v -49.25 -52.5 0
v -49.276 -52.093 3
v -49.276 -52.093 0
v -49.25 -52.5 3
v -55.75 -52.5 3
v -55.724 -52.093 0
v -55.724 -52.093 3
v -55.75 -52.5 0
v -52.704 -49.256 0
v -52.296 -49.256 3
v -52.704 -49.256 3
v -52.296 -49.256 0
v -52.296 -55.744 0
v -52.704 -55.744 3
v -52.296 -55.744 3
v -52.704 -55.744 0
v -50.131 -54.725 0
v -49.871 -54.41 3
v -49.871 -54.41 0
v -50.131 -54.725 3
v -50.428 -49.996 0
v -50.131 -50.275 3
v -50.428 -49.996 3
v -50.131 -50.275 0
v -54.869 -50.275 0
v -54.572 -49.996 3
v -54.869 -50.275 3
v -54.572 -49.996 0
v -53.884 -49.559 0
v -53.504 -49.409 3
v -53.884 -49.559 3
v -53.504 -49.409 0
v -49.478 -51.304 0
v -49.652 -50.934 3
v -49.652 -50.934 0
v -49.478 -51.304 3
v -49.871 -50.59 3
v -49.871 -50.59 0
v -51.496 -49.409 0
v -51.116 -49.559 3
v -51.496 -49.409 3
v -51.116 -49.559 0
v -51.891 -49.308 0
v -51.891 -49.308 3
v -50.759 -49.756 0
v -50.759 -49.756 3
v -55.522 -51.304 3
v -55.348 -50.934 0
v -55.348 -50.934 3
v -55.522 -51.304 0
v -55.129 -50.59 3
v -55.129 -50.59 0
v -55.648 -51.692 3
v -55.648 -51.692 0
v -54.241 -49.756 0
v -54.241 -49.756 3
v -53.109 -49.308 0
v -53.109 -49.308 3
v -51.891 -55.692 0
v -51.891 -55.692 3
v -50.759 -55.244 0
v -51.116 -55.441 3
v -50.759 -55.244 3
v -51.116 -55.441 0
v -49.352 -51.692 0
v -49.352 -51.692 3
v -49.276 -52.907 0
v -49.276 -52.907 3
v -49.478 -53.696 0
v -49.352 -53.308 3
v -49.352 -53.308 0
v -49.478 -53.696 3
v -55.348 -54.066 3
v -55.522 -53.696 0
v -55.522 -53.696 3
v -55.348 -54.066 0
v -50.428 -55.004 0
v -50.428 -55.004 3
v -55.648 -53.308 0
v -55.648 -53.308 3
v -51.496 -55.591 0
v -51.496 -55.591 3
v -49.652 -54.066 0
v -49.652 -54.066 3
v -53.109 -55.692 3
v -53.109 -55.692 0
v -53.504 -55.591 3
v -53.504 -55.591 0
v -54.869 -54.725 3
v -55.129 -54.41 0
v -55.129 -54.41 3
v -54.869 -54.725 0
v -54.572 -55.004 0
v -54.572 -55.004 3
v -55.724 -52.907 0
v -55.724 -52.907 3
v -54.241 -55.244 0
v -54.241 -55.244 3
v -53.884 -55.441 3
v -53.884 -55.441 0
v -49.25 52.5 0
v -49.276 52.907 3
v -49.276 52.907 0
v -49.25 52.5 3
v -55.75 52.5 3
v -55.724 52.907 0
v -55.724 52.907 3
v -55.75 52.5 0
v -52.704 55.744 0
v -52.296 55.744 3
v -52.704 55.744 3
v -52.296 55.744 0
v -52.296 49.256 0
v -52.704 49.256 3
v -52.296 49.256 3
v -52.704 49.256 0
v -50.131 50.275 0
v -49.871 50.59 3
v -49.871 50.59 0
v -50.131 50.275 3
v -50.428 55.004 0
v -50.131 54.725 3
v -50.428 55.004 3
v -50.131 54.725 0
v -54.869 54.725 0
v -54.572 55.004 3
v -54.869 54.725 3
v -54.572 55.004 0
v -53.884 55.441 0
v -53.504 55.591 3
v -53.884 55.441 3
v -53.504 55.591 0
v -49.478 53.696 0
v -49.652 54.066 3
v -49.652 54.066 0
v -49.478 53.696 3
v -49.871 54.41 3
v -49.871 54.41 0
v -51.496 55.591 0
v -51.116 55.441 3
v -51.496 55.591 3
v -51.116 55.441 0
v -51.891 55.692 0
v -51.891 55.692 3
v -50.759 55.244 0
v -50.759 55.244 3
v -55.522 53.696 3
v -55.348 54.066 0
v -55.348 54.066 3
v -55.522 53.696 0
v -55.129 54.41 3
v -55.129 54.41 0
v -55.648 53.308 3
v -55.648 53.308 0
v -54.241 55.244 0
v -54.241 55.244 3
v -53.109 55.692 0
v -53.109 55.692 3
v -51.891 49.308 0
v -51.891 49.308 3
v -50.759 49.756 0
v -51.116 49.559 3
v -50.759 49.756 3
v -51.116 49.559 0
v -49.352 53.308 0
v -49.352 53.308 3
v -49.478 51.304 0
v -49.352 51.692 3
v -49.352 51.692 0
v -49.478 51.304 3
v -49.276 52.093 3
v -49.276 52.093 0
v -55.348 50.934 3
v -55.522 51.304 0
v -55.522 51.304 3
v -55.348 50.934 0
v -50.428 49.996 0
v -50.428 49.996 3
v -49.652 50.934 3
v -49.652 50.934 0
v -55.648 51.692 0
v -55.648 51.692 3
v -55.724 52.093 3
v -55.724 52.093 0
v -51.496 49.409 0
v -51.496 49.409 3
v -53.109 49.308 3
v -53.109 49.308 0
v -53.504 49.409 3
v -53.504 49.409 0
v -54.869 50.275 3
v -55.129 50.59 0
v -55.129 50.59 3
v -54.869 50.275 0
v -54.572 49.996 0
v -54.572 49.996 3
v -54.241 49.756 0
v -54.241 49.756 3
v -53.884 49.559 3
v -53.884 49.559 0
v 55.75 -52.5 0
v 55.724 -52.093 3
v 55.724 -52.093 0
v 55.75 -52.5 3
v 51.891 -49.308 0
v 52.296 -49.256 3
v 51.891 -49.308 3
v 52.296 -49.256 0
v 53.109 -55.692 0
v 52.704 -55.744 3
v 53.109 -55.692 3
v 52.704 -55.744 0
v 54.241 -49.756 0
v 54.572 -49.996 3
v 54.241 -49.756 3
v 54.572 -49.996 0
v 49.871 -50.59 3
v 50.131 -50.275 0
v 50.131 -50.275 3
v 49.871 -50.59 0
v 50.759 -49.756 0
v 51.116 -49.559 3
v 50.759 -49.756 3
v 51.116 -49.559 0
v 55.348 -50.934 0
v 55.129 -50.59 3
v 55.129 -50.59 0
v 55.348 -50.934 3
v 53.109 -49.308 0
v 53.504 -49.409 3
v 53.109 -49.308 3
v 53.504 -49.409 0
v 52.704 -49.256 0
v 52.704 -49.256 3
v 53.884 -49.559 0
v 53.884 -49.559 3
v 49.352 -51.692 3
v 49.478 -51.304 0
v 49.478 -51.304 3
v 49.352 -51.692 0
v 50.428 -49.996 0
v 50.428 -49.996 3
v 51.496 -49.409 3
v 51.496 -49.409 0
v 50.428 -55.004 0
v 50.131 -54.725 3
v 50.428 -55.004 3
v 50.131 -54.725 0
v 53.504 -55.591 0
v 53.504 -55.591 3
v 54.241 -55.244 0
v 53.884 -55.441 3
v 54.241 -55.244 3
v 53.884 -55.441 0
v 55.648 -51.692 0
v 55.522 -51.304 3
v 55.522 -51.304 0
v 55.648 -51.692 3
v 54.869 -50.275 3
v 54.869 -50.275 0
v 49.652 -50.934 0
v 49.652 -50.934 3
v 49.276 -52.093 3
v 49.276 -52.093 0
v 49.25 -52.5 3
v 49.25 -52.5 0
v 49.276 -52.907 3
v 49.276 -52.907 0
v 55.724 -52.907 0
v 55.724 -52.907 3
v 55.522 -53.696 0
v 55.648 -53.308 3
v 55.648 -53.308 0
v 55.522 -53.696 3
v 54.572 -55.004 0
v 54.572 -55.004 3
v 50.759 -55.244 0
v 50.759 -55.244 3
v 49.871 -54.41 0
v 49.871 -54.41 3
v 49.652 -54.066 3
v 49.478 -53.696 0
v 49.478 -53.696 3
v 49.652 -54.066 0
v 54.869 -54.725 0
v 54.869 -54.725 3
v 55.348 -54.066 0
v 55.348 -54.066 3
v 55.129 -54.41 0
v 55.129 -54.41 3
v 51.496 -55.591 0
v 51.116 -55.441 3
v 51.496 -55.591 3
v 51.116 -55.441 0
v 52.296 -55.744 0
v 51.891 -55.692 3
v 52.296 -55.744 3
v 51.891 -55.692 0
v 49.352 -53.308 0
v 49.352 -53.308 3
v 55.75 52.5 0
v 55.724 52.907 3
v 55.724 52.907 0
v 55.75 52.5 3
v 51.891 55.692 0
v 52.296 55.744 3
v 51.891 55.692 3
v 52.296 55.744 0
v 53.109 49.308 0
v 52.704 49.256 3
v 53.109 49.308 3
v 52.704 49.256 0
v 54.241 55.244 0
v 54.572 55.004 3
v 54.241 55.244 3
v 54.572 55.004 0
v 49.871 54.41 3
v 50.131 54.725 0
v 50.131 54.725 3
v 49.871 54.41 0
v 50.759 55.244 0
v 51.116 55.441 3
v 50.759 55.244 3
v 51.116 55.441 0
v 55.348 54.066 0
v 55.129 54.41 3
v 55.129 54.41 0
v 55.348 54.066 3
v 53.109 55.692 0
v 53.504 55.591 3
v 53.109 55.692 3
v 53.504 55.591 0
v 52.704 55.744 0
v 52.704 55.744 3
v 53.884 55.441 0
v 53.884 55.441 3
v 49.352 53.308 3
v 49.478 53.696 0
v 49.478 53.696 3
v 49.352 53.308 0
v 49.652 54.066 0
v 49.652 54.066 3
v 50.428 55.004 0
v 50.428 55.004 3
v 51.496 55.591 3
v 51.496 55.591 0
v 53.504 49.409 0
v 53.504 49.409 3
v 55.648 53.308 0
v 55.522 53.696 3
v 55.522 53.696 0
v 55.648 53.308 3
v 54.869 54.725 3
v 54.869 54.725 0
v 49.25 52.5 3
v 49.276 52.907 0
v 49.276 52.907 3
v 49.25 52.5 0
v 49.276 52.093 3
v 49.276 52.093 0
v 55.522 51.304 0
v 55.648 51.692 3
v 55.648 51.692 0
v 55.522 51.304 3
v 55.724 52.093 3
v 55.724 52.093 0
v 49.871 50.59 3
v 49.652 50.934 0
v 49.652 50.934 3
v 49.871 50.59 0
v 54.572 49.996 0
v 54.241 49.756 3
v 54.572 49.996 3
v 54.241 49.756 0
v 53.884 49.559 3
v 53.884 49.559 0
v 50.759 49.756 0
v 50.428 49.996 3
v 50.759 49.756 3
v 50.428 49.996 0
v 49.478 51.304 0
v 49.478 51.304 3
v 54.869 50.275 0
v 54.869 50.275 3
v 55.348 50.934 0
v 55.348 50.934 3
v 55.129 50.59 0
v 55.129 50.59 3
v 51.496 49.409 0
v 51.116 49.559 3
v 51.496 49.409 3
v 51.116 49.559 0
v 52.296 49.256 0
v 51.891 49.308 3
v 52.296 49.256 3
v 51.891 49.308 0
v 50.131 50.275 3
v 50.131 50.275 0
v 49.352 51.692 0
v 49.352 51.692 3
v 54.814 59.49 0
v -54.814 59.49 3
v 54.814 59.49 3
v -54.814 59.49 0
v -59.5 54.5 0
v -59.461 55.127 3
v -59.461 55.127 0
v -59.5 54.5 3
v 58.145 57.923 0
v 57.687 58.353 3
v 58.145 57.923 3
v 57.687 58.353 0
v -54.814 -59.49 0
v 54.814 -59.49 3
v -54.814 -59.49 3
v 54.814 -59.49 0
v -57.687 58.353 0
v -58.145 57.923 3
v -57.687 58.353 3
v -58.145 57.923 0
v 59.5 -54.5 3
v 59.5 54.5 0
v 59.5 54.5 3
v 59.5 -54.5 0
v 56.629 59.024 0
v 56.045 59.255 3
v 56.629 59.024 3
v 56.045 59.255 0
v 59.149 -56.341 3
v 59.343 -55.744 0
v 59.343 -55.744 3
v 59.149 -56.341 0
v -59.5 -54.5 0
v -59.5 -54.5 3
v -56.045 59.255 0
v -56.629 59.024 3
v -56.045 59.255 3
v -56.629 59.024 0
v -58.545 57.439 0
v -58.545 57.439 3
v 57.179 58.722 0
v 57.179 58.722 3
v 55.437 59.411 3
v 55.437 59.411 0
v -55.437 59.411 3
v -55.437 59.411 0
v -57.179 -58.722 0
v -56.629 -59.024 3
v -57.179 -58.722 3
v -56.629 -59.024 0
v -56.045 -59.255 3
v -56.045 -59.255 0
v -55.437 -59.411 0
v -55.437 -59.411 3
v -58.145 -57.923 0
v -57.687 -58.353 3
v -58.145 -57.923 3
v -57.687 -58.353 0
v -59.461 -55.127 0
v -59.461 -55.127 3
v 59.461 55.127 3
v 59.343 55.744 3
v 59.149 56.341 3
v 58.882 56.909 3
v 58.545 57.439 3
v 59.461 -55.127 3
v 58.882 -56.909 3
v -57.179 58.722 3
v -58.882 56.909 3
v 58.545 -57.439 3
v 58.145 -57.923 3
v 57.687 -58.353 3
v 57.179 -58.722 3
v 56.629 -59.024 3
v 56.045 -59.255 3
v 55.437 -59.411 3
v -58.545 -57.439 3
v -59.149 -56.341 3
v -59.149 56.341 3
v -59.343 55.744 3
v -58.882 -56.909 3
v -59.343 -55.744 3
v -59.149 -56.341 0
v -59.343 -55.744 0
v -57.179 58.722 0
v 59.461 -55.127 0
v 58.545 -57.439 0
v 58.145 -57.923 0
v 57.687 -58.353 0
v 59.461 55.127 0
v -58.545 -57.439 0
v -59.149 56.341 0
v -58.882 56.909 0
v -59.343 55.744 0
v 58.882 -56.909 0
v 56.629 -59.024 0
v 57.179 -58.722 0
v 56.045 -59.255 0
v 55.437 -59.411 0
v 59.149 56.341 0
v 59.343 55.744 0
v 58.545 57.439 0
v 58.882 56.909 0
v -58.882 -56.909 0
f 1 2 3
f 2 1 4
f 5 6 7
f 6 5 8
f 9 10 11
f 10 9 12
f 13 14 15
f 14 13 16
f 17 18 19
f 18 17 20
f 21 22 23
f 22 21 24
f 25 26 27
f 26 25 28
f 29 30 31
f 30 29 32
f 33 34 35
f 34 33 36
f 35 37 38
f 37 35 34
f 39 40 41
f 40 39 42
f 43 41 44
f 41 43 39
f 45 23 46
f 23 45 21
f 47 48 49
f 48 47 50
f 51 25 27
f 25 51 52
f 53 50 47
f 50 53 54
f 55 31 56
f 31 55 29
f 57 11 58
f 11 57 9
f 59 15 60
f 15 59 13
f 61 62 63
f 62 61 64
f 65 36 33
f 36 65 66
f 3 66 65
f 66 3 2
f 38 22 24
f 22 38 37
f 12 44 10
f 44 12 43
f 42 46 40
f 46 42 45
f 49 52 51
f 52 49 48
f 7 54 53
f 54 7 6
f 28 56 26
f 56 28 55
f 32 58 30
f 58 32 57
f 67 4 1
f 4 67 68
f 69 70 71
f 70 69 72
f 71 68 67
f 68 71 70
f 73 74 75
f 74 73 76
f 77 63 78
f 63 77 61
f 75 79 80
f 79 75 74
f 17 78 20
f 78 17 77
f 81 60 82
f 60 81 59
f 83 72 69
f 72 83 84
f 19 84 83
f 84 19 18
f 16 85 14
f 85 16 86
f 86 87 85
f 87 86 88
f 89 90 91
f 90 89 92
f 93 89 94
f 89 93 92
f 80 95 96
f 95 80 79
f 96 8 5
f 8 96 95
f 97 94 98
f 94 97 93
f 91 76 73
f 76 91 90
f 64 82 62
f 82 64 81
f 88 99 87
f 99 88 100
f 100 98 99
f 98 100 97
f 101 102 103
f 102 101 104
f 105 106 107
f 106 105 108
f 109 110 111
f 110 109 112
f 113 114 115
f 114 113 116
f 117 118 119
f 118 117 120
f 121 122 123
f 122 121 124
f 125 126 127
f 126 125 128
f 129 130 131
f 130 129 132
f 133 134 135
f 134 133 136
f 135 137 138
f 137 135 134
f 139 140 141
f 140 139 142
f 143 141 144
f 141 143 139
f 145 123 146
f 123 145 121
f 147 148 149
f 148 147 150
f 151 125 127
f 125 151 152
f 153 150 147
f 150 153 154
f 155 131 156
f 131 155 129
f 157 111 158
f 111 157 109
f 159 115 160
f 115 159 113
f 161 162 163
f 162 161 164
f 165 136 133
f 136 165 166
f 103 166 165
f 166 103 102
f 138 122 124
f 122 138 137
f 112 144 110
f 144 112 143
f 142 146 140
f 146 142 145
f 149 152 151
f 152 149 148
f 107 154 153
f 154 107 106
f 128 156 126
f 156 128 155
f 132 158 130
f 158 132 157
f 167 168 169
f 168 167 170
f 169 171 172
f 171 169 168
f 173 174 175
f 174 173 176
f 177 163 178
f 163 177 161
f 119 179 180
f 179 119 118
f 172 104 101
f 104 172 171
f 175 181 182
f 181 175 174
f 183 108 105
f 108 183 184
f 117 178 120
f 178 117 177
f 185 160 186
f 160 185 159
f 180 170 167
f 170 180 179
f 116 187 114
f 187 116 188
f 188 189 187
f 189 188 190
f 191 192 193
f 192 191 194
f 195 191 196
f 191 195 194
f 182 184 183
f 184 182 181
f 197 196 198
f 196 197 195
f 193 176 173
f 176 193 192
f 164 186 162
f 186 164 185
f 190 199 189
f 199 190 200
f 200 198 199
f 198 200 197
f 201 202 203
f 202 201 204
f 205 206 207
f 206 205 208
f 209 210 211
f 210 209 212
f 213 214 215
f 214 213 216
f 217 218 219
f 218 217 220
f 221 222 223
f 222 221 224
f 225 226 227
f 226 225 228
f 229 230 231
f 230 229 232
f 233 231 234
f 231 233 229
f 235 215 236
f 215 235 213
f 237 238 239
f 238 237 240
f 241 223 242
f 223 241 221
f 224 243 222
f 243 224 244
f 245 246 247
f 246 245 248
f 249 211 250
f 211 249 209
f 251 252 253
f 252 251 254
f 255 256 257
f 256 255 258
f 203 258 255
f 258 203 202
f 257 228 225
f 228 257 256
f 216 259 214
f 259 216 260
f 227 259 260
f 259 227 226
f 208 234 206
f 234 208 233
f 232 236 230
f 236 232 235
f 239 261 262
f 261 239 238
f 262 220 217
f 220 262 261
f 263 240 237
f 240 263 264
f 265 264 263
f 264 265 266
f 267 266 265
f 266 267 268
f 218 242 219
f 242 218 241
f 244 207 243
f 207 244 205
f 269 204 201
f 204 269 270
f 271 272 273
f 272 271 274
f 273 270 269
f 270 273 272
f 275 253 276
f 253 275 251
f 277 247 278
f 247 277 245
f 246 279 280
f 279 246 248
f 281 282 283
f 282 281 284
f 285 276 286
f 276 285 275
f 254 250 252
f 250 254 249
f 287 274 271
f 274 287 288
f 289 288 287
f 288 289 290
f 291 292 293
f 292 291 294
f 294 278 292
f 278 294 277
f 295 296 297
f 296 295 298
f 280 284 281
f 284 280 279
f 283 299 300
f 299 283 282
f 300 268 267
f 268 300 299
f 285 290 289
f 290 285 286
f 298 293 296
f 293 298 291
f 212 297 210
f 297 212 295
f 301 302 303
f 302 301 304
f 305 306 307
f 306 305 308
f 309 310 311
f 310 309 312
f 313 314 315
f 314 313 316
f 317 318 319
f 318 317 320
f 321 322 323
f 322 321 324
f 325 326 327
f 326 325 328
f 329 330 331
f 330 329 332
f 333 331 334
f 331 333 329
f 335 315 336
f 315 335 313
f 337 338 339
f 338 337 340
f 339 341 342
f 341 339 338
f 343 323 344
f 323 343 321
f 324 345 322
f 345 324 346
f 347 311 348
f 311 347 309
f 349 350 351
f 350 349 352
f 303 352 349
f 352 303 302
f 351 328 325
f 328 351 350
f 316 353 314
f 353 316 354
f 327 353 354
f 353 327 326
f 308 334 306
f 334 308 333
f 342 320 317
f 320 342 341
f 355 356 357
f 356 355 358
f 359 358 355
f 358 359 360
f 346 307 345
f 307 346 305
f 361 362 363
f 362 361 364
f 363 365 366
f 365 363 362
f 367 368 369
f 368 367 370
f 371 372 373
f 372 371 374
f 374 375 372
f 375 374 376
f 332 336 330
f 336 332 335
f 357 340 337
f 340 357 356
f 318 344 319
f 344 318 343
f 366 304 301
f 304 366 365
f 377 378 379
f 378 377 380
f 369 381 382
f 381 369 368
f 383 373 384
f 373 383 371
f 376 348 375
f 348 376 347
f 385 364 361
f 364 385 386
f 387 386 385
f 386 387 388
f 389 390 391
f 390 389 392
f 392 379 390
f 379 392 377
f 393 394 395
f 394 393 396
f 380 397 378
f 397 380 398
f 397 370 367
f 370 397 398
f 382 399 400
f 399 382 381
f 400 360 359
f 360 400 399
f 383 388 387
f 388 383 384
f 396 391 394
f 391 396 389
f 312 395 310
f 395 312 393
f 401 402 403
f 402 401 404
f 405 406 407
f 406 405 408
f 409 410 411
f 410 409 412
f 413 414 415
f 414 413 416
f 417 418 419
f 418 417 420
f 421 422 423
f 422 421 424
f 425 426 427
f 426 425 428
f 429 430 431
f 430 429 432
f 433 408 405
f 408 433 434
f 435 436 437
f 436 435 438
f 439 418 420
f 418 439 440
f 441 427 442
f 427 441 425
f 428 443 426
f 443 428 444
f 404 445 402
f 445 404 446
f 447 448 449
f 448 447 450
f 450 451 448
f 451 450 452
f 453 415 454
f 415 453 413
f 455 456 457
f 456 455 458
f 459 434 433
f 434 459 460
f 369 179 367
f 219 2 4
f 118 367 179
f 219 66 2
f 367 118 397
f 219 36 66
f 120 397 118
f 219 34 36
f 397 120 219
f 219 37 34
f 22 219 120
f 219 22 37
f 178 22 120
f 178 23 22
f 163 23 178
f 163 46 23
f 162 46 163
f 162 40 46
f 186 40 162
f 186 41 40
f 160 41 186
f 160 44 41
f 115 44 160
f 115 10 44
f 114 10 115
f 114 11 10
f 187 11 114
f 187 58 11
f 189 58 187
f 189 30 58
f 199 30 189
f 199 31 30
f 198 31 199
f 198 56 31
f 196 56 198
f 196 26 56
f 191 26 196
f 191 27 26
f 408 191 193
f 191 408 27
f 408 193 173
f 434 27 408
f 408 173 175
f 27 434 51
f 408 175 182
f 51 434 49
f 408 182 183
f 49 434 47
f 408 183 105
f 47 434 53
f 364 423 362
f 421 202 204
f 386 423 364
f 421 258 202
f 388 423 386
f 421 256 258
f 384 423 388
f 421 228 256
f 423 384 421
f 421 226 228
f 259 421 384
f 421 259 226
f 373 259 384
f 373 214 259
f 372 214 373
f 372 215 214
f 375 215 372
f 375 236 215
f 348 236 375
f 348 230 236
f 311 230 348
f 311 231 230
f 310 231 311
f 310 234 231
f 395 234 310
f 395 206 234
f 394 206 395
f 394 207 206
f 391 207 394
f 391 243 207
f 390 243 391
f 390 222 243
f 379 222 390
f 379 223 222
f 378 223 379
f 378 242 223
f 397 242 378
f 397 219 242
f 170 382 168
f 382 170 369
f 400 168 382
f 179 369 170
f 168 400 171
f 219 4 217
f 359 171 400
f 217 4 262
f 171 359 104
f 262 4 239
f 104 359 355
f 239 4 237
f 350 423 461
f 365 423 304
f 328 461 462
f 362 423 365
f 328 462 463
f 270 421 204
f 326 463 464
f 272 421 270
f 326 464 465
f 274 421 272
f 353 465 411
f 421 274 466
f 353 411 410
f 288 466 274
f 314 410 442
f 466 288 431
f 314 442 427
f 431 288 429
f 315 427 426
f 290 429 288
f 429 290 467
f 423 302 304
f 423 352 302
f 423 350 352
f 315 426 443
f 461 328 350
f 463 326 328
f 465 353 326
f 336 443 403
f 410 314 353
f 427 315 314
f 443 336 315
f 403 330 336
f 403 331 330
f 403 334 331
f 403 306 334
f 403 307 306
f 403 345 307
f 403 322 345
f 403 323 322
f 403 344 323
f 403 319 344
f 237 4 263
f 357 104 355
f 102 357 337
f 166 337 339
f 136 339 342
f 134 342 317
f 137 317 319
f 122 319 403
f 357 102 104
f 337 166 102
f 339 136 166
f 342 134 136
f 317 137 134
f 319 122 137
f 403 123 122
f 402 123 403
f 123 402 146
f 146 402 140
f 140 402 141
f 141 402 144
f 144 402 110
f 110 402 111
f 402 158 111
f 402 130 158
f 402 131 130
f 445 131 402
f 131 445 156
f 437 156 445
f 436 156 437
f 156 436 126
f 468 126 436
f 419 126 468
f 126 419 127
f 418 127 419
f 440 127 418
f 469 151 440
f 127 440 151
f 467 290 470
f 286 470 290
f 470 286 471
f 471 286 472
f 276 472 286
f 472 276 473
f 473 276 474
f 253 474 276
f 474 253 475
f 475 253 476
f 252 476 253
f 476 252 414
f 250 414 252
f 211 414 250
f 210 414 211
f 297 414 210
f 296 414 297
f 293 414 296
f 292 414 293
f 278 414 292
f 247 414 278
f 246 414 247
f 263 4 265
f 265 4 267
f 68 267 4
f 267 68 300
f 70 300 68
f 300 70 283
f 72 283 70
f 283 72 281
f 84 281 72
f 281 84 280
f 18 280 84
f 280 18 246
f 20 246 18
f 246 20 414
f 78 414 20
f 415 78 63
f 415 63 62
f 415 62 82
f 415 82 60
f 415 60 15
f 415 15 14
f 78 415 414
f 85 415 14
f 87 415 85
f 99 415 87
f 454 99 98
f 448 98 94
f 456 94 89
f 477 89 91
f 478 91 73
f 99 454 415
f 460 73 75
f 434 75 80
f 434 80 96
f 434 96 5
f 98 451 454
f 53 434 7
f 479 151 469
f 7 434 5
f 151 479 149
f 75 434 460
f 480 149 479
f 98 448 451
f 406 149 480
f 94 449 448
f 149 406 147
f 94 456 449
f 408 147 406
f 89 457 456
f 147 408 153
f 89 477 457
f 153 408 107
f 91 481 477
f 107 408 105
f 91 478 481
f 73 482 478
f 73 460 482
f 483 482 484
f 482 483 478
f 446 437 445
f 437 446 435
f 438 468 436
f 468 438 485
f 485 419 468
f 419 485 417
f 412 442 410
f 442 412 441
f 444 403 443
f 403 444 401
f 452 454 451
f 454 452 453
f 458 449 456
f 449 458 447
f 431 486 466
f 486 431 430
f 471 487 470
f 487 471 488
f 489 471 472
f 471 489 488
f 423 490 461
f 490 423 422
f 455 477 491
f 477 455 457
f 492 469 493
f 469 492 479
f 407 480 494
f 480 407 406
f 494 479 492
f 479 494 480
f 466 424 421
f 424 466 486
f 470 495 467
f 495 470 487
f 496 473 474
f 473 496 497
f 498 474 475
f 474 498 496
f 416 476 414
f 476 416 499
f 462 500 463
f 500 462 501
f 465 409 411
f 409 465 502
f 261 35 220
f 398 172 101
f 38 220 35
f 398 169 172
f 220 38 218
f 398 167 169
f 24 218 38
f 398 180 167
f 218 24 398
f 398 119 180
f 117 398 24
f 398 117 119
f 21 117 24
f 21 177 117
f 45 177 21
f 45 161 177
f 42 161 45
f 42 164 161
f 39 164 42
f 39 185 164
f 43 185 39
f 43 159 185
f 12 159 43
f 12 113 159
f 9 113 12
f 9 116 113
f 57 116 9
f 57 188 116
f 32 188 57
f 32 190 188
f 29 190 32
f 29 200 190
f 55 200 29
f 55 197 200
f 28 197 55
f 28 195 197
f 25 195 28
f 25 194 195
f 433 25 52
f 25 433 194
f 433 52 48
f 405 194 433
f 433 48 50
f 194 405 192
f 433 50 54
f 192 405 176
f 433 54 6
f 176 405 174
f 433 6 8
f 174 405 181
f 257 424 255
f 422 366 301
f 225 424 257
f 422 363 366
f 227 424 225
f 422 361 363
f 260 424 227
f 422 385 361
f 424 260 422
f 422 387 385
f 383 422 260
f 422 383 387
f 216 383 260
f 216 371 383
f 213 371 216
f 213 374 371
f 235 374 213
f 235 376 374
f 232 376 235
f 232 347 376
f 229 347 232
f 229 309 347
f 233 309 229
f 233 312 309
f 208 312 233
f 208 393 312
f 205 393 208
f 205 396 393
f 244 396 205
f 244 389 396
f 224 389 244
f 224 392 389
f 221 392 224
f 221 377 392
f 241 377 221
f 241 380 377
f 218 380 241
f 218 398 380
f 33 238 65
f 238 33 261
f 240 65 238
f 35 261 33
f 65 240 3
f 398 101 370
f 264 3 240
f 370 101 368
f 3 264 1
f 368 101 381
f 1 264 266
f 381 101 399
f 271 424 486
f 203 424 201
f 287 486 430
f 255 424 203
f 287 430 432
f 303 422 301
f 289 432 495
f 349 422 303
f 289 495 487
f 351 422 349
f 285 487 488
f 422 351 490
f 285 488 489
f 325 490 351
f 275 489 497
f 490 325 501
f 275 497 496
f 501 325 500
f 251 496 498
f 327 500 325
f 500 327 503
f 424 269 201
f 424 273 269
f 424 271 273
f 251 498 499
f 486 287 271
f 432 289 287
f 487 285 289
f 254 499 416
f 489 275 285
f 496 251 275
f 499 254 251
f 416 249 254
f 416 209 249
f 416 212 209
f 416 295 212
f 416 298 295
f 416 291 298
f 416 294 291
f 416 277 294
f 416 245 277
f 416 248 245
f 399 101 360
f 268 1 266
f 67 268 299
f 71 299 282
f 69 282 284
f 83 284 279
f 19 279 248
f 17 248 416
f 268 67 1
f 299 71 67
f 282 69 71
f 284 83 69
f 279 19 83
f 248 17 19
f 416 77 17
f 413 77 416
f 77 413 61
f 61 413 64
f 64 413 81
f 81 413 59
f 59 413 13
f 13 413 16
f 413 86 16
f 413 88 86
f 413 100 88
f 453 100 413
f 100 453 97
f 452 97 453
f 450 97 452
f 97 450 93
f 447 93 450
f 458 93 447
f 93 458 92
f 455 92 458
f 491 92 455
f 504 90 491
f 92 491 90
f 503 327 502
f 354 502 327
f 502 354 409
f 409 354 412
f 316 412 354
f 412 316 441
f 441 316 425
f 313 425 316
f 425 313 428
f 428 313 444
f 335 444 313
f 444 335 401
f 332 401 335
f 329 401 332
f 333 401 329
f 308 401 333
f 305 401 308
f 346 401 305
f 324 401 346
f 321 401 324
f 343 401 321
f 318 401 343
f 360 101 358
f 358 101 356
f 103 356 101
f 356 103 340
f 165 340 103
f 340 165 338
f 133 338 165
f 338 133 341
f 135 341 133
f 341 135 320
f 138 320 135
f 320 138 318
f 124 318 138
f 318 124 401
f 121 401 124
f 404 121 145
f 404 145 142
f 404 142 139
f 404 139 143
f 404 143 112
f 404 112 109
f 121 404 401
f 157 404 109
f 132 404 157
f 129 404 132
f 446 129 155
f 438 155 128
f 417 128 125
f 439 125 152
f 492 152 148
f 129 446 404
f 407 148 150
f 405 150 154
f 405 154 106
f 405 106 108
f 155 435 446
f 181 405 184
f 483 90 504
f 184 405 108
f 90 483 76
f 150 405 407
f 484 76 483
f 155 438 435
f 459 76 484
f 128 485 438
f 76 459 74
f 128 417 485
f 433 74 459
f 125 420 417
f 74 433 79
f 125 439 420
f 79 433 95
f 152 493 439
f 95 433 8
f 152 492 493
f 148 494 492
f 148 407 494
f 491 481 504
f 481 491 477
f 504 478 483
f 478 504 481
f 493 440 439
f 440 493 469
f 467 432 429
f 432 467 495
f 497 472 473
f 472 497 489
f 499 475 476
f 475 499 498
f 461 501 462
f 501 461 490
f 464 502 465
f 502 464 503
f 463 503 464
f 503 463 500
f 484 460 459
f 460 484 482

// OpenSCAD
$fn = 50;


difference() {
	union() {
		hull() {
			translate(v = [-54.5000000000, 54.5000000000, 0]) {
				cylinder(h = 3, r = 5);
			}
			translate(v = [54.5000000000, 54.5000000000, 0]) {
				cylinder(h = 3, r = 5);
			}
			translate(v = [-54.5000000000, -54.5000000000, 0]) {
				cylinder(h = 3, r = 5);
			}
			translate(v = [54.5000000000, -54.5000000000, 0]) {
				cylinder(h = 3, r = 5);
			}
		}
	}
	union() {
		translate(v = [-52.5000000000, -52.5000000000, -100.0000000000]) {
			cylinder(h = 200, r = 3.2500000000);
		}
		translate(v = [-52.5000000000, 52.5000000000, -100.0000000000]) {
			cylinder(h = 200, r = 3.2500000000);
		}
		translate(v = [52.5000000000, -52.5000000000, -100.0000000000]) {
			cylinder(h = 200, r = 3.2500000000);
		}
		translate(v = [52.5000000000, 52.5000000000, -100.0000000000]) {
			cylinder(h = 200, r = 3.2500000000);
		}
	}
}
